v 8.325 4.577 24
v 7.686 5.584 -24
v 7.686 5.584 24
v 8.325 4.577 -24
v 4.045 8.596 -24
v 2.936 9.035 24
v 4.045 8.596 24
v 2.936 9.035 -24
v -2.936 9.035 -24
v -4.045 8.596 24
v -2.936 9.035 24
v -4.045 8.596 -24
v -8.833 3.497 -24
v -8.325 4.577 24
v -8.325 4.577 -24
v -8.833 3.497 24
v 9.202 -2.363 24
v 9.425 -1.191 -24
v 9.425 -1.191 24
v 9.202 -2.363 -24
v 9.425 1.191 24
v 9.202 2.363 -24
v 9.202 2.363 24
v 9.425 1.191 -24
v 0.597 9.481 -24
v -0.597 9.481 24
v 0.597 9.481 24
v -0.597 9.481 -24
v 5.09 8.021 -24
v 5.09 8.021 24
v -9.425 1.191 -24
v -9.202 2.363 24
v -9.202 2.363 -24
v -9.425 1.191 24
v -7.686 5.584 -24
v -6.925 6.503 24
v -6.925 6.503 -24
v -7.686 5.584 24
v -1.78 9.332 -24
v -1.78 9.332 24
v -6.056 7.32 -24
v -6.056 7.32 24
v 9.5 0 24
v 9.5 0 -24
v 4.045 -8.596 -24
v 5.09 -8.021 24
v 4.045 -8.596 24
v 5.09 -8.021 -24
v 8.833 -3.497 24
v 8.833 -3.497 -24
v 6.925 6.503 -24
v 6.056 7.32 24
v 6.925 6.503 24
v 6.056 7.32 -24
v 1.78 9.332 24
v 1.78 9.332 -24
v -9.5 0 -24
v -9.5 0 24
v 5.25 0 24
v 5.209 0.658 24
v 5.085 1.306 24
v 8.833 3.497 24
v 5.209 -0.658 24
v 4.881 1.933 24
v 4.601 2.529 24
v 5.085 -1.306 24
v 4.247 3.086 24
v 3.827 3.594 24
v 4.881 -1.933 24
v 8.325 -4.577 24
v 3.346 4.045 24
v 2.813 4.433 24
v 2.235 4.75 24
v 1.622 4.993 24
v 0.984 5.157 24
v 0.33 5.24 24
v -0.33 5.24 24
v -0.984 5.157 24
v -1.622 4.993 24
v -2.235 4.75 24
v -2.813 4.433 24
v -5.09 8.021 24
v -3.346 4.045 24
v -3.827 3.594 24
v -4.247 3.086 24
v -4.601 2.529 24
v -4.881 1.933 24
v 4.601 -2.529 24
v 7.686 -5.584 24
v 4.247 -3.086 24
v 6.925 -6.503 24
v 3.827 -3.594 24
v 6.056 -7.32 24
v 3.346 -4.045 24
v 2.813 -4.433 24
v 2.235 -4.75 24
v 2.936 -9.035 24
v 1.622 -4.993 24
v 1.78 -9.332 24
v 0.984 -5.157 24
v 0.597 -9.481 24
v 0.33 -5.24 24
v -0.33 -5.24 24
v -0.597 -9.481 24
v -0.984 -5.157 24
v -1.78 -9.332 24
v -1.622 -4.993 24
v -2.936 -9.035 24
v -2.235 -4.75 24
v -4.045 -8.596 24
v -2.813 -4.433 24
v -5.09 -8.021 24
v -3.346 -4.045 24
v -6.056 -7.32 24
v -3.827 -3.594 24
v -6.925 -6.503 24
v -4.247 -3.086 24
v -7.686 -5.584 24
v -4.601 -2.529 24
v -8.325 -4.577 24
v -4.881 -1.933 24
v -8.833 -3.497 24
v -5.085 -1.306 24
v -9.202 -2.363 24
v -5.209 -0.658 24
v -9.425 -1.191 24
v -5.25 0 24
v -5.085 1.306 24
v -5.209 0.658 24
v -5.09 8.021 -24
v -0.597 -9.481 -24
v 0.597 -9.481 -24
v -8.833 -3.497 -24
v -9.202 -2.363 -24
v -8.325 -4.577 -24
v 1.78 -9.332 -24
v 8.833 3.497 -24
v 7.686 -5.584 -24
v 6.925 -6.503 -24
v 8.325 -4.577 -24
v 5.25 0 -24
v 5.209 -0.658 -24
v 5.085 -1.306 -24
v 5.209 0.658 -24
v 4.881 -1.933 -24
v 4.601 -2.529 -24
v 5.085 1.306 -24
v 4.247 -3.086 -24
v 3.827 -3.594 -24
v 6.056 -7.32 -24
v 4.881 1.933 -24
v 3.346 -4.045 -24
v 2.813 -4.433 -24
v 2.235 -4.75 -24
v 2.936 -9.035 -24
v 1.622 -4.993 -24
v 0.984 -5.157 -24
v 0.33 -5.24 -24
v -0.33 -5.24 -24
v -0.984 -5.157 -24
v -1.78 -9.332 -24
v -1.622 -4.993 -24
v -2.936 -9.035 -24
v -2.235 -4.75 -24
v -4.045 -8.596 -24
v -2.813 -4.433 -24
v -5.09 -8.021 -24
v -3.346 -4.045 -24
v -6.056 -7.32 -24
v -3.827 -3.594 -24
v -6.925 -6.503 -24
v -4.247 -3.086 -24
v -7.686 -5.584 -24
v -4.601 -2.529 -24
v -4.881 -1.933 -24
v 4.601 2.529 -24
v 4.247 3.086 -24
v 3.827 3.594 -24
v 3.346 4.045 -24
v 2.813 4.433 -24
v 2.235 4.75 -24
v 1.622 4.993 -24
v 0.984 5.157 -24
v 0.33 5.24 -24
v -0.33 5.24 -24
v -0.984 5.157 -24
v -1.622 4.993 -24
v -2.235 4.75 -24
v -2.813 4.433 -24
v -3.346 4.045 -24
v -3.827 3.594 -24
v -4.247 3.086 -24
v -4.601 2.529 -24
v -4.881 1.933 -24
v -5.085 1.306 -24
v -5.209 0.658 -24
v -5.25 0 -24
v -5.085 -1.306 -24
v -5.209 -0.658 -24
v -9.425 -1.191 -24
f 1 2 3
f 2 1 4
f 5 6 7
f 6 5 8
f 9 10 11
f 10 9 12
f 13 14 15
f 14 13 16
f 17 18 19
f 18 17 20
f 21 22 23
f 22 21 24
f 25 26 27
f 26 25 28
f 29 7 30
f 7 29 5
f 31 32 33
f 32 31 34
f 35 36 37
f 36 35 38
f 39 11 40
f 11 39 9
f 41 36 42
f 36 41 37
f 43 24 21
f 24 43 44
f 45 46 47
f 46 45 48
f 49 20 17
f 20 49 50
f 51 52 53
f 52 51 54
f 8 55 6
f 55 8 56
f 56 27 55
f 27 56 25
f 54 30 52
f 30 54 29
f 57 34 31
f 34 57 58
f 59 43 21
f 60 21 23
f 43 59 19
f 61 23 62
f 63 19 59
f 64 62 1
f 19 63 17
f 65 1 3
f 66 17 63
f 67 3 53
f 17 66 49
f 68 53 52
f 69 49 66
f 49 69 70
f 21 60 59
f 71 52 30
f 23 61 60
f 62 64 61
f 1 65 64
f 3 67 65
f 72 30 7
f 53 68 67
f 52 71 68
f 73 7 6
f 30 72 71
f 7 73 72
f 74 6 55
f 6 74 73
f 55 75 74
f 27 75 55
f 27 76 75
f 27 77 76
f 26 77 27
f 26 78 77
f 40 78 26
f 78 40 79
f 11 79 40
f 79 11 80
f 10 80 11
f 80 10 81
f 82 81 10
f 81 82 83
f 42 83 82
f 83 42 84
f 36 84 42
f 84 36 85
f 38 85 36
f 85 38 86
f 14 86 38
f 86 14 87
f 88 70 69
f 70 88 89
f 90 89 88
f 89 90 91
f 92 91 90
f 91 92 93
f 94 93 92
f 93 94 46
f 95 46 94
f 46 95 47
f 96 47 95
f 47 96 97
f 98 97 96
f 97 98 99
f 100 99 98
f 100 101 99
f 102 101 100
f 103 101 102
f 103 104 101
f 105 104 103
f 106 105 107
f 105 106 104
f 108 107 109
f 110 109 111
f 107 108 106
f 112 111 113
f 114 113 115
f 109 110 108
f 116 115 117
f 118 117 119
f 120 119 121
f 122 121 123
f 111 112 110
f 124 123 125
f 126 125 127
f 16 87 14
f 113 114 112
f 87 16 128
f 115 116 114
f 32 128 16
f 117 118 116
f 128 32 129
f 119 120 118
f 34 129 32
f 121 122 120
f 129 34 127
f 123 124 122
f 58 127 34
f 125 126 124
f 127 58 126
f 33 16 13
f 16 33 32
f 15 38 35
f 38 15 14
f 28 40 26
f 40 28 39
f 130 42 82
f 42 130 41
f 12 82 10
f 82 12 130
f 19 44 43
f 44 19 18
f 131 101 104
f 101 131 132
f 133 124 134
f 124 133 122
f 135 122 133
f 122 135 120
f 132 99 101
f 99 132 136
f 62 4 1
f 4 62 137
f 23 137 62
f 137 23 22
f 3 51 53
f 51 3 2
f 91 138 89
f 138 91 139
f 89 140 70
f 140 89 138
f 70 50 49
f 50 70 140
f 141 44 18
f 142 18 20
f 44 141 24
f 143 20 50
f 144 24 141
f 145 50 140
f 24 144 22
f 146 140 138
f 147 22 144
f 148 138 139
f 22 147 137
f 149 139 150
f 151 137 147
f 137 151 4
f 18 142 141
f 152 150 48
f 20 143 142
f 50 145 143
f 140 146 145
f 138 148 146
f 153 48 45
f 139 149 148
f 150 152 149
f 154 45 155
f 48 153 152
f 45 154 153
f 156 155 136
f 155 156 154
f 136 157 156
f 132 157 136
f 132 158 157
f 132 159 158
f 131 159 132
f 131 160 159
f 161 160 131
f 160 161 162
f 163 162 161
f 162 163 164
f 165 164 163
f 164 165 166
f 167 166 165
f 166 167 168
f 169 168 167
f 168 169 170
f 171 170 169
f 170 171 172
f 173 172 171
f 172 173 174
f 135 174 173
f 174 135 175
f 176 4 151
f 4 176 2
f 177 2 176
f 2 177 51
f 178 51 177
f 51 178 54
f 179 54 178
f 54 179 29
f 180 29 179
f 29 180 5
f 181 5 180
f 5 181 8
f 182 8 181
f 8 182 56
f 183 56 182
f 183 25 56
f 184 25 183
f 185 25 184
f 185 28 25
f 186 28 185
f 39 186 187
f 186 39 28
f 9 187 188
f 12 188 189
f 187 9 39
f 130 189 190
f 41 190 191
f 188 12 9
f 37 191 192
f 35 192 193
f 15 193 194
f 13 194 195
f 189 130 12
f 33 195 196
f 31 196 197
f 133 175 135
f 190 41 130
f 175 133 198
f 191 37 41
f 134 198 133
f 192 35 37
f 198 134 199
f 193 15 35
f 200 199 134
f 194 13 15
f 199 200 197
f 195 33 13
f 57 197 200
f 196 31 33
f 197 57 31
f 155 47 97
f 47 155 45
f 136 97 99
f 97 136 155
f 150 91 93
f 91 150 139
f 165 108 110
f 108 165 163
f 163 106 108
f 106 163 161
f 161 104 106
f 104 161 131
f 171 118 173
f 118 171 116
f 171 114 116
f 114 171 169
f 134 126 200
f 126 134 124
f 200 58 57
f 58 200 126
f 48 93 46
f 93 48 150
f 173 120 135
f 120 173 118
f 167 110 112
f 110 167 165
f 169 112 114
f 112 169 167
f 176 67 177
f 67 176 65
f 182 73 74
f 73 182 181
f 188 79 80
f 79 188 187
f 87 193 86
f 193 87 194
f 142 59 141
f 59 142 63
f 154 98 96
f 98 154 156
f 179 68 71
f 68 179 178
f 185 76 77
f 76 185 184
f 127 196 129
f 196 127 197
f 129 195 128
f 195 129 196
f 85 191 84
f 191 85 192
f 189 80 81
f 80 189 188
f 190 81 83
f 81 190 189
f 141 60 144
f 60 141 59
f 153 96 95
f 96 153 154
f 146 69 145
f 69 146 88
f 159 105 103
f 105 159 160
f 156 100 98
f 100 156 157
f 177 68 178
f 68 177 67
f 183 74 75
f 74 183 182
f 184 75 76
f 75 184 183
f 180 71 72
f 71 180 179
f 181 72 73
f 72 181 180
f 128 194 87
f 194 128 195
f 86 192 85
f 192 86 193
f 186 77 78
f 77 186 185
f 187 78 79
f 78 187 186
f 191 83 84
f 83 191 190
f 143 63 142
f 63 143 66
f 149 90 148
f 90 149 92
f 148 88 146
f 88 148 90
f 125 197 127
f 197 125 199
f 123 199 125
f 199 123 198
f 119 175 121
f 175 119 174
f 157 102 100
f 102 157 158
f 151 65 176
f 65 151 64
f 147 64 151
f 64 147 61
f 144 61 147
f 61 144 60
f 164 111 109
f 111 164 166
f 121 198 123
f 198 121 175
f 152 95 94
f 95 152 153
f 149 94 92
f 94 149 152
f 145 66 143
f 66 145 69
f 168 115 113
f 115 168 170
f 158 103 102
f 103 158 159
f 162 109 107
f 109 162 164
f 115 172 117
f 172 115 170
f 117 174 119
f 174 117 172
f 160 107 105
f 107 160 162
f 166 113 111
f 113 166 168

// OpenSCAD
$fn = 50;


difference() {
	union() {
		translate(v = [0, 0, -24.0000000000]) {
			cylinder(h = 48, r = 9.5000000000);
		}
	}
	union() {
		translate(v = [0, 0, -100.0000000000]) {
			cylinder(h = 200, r = 5.2500000000);
		}
	}
}
